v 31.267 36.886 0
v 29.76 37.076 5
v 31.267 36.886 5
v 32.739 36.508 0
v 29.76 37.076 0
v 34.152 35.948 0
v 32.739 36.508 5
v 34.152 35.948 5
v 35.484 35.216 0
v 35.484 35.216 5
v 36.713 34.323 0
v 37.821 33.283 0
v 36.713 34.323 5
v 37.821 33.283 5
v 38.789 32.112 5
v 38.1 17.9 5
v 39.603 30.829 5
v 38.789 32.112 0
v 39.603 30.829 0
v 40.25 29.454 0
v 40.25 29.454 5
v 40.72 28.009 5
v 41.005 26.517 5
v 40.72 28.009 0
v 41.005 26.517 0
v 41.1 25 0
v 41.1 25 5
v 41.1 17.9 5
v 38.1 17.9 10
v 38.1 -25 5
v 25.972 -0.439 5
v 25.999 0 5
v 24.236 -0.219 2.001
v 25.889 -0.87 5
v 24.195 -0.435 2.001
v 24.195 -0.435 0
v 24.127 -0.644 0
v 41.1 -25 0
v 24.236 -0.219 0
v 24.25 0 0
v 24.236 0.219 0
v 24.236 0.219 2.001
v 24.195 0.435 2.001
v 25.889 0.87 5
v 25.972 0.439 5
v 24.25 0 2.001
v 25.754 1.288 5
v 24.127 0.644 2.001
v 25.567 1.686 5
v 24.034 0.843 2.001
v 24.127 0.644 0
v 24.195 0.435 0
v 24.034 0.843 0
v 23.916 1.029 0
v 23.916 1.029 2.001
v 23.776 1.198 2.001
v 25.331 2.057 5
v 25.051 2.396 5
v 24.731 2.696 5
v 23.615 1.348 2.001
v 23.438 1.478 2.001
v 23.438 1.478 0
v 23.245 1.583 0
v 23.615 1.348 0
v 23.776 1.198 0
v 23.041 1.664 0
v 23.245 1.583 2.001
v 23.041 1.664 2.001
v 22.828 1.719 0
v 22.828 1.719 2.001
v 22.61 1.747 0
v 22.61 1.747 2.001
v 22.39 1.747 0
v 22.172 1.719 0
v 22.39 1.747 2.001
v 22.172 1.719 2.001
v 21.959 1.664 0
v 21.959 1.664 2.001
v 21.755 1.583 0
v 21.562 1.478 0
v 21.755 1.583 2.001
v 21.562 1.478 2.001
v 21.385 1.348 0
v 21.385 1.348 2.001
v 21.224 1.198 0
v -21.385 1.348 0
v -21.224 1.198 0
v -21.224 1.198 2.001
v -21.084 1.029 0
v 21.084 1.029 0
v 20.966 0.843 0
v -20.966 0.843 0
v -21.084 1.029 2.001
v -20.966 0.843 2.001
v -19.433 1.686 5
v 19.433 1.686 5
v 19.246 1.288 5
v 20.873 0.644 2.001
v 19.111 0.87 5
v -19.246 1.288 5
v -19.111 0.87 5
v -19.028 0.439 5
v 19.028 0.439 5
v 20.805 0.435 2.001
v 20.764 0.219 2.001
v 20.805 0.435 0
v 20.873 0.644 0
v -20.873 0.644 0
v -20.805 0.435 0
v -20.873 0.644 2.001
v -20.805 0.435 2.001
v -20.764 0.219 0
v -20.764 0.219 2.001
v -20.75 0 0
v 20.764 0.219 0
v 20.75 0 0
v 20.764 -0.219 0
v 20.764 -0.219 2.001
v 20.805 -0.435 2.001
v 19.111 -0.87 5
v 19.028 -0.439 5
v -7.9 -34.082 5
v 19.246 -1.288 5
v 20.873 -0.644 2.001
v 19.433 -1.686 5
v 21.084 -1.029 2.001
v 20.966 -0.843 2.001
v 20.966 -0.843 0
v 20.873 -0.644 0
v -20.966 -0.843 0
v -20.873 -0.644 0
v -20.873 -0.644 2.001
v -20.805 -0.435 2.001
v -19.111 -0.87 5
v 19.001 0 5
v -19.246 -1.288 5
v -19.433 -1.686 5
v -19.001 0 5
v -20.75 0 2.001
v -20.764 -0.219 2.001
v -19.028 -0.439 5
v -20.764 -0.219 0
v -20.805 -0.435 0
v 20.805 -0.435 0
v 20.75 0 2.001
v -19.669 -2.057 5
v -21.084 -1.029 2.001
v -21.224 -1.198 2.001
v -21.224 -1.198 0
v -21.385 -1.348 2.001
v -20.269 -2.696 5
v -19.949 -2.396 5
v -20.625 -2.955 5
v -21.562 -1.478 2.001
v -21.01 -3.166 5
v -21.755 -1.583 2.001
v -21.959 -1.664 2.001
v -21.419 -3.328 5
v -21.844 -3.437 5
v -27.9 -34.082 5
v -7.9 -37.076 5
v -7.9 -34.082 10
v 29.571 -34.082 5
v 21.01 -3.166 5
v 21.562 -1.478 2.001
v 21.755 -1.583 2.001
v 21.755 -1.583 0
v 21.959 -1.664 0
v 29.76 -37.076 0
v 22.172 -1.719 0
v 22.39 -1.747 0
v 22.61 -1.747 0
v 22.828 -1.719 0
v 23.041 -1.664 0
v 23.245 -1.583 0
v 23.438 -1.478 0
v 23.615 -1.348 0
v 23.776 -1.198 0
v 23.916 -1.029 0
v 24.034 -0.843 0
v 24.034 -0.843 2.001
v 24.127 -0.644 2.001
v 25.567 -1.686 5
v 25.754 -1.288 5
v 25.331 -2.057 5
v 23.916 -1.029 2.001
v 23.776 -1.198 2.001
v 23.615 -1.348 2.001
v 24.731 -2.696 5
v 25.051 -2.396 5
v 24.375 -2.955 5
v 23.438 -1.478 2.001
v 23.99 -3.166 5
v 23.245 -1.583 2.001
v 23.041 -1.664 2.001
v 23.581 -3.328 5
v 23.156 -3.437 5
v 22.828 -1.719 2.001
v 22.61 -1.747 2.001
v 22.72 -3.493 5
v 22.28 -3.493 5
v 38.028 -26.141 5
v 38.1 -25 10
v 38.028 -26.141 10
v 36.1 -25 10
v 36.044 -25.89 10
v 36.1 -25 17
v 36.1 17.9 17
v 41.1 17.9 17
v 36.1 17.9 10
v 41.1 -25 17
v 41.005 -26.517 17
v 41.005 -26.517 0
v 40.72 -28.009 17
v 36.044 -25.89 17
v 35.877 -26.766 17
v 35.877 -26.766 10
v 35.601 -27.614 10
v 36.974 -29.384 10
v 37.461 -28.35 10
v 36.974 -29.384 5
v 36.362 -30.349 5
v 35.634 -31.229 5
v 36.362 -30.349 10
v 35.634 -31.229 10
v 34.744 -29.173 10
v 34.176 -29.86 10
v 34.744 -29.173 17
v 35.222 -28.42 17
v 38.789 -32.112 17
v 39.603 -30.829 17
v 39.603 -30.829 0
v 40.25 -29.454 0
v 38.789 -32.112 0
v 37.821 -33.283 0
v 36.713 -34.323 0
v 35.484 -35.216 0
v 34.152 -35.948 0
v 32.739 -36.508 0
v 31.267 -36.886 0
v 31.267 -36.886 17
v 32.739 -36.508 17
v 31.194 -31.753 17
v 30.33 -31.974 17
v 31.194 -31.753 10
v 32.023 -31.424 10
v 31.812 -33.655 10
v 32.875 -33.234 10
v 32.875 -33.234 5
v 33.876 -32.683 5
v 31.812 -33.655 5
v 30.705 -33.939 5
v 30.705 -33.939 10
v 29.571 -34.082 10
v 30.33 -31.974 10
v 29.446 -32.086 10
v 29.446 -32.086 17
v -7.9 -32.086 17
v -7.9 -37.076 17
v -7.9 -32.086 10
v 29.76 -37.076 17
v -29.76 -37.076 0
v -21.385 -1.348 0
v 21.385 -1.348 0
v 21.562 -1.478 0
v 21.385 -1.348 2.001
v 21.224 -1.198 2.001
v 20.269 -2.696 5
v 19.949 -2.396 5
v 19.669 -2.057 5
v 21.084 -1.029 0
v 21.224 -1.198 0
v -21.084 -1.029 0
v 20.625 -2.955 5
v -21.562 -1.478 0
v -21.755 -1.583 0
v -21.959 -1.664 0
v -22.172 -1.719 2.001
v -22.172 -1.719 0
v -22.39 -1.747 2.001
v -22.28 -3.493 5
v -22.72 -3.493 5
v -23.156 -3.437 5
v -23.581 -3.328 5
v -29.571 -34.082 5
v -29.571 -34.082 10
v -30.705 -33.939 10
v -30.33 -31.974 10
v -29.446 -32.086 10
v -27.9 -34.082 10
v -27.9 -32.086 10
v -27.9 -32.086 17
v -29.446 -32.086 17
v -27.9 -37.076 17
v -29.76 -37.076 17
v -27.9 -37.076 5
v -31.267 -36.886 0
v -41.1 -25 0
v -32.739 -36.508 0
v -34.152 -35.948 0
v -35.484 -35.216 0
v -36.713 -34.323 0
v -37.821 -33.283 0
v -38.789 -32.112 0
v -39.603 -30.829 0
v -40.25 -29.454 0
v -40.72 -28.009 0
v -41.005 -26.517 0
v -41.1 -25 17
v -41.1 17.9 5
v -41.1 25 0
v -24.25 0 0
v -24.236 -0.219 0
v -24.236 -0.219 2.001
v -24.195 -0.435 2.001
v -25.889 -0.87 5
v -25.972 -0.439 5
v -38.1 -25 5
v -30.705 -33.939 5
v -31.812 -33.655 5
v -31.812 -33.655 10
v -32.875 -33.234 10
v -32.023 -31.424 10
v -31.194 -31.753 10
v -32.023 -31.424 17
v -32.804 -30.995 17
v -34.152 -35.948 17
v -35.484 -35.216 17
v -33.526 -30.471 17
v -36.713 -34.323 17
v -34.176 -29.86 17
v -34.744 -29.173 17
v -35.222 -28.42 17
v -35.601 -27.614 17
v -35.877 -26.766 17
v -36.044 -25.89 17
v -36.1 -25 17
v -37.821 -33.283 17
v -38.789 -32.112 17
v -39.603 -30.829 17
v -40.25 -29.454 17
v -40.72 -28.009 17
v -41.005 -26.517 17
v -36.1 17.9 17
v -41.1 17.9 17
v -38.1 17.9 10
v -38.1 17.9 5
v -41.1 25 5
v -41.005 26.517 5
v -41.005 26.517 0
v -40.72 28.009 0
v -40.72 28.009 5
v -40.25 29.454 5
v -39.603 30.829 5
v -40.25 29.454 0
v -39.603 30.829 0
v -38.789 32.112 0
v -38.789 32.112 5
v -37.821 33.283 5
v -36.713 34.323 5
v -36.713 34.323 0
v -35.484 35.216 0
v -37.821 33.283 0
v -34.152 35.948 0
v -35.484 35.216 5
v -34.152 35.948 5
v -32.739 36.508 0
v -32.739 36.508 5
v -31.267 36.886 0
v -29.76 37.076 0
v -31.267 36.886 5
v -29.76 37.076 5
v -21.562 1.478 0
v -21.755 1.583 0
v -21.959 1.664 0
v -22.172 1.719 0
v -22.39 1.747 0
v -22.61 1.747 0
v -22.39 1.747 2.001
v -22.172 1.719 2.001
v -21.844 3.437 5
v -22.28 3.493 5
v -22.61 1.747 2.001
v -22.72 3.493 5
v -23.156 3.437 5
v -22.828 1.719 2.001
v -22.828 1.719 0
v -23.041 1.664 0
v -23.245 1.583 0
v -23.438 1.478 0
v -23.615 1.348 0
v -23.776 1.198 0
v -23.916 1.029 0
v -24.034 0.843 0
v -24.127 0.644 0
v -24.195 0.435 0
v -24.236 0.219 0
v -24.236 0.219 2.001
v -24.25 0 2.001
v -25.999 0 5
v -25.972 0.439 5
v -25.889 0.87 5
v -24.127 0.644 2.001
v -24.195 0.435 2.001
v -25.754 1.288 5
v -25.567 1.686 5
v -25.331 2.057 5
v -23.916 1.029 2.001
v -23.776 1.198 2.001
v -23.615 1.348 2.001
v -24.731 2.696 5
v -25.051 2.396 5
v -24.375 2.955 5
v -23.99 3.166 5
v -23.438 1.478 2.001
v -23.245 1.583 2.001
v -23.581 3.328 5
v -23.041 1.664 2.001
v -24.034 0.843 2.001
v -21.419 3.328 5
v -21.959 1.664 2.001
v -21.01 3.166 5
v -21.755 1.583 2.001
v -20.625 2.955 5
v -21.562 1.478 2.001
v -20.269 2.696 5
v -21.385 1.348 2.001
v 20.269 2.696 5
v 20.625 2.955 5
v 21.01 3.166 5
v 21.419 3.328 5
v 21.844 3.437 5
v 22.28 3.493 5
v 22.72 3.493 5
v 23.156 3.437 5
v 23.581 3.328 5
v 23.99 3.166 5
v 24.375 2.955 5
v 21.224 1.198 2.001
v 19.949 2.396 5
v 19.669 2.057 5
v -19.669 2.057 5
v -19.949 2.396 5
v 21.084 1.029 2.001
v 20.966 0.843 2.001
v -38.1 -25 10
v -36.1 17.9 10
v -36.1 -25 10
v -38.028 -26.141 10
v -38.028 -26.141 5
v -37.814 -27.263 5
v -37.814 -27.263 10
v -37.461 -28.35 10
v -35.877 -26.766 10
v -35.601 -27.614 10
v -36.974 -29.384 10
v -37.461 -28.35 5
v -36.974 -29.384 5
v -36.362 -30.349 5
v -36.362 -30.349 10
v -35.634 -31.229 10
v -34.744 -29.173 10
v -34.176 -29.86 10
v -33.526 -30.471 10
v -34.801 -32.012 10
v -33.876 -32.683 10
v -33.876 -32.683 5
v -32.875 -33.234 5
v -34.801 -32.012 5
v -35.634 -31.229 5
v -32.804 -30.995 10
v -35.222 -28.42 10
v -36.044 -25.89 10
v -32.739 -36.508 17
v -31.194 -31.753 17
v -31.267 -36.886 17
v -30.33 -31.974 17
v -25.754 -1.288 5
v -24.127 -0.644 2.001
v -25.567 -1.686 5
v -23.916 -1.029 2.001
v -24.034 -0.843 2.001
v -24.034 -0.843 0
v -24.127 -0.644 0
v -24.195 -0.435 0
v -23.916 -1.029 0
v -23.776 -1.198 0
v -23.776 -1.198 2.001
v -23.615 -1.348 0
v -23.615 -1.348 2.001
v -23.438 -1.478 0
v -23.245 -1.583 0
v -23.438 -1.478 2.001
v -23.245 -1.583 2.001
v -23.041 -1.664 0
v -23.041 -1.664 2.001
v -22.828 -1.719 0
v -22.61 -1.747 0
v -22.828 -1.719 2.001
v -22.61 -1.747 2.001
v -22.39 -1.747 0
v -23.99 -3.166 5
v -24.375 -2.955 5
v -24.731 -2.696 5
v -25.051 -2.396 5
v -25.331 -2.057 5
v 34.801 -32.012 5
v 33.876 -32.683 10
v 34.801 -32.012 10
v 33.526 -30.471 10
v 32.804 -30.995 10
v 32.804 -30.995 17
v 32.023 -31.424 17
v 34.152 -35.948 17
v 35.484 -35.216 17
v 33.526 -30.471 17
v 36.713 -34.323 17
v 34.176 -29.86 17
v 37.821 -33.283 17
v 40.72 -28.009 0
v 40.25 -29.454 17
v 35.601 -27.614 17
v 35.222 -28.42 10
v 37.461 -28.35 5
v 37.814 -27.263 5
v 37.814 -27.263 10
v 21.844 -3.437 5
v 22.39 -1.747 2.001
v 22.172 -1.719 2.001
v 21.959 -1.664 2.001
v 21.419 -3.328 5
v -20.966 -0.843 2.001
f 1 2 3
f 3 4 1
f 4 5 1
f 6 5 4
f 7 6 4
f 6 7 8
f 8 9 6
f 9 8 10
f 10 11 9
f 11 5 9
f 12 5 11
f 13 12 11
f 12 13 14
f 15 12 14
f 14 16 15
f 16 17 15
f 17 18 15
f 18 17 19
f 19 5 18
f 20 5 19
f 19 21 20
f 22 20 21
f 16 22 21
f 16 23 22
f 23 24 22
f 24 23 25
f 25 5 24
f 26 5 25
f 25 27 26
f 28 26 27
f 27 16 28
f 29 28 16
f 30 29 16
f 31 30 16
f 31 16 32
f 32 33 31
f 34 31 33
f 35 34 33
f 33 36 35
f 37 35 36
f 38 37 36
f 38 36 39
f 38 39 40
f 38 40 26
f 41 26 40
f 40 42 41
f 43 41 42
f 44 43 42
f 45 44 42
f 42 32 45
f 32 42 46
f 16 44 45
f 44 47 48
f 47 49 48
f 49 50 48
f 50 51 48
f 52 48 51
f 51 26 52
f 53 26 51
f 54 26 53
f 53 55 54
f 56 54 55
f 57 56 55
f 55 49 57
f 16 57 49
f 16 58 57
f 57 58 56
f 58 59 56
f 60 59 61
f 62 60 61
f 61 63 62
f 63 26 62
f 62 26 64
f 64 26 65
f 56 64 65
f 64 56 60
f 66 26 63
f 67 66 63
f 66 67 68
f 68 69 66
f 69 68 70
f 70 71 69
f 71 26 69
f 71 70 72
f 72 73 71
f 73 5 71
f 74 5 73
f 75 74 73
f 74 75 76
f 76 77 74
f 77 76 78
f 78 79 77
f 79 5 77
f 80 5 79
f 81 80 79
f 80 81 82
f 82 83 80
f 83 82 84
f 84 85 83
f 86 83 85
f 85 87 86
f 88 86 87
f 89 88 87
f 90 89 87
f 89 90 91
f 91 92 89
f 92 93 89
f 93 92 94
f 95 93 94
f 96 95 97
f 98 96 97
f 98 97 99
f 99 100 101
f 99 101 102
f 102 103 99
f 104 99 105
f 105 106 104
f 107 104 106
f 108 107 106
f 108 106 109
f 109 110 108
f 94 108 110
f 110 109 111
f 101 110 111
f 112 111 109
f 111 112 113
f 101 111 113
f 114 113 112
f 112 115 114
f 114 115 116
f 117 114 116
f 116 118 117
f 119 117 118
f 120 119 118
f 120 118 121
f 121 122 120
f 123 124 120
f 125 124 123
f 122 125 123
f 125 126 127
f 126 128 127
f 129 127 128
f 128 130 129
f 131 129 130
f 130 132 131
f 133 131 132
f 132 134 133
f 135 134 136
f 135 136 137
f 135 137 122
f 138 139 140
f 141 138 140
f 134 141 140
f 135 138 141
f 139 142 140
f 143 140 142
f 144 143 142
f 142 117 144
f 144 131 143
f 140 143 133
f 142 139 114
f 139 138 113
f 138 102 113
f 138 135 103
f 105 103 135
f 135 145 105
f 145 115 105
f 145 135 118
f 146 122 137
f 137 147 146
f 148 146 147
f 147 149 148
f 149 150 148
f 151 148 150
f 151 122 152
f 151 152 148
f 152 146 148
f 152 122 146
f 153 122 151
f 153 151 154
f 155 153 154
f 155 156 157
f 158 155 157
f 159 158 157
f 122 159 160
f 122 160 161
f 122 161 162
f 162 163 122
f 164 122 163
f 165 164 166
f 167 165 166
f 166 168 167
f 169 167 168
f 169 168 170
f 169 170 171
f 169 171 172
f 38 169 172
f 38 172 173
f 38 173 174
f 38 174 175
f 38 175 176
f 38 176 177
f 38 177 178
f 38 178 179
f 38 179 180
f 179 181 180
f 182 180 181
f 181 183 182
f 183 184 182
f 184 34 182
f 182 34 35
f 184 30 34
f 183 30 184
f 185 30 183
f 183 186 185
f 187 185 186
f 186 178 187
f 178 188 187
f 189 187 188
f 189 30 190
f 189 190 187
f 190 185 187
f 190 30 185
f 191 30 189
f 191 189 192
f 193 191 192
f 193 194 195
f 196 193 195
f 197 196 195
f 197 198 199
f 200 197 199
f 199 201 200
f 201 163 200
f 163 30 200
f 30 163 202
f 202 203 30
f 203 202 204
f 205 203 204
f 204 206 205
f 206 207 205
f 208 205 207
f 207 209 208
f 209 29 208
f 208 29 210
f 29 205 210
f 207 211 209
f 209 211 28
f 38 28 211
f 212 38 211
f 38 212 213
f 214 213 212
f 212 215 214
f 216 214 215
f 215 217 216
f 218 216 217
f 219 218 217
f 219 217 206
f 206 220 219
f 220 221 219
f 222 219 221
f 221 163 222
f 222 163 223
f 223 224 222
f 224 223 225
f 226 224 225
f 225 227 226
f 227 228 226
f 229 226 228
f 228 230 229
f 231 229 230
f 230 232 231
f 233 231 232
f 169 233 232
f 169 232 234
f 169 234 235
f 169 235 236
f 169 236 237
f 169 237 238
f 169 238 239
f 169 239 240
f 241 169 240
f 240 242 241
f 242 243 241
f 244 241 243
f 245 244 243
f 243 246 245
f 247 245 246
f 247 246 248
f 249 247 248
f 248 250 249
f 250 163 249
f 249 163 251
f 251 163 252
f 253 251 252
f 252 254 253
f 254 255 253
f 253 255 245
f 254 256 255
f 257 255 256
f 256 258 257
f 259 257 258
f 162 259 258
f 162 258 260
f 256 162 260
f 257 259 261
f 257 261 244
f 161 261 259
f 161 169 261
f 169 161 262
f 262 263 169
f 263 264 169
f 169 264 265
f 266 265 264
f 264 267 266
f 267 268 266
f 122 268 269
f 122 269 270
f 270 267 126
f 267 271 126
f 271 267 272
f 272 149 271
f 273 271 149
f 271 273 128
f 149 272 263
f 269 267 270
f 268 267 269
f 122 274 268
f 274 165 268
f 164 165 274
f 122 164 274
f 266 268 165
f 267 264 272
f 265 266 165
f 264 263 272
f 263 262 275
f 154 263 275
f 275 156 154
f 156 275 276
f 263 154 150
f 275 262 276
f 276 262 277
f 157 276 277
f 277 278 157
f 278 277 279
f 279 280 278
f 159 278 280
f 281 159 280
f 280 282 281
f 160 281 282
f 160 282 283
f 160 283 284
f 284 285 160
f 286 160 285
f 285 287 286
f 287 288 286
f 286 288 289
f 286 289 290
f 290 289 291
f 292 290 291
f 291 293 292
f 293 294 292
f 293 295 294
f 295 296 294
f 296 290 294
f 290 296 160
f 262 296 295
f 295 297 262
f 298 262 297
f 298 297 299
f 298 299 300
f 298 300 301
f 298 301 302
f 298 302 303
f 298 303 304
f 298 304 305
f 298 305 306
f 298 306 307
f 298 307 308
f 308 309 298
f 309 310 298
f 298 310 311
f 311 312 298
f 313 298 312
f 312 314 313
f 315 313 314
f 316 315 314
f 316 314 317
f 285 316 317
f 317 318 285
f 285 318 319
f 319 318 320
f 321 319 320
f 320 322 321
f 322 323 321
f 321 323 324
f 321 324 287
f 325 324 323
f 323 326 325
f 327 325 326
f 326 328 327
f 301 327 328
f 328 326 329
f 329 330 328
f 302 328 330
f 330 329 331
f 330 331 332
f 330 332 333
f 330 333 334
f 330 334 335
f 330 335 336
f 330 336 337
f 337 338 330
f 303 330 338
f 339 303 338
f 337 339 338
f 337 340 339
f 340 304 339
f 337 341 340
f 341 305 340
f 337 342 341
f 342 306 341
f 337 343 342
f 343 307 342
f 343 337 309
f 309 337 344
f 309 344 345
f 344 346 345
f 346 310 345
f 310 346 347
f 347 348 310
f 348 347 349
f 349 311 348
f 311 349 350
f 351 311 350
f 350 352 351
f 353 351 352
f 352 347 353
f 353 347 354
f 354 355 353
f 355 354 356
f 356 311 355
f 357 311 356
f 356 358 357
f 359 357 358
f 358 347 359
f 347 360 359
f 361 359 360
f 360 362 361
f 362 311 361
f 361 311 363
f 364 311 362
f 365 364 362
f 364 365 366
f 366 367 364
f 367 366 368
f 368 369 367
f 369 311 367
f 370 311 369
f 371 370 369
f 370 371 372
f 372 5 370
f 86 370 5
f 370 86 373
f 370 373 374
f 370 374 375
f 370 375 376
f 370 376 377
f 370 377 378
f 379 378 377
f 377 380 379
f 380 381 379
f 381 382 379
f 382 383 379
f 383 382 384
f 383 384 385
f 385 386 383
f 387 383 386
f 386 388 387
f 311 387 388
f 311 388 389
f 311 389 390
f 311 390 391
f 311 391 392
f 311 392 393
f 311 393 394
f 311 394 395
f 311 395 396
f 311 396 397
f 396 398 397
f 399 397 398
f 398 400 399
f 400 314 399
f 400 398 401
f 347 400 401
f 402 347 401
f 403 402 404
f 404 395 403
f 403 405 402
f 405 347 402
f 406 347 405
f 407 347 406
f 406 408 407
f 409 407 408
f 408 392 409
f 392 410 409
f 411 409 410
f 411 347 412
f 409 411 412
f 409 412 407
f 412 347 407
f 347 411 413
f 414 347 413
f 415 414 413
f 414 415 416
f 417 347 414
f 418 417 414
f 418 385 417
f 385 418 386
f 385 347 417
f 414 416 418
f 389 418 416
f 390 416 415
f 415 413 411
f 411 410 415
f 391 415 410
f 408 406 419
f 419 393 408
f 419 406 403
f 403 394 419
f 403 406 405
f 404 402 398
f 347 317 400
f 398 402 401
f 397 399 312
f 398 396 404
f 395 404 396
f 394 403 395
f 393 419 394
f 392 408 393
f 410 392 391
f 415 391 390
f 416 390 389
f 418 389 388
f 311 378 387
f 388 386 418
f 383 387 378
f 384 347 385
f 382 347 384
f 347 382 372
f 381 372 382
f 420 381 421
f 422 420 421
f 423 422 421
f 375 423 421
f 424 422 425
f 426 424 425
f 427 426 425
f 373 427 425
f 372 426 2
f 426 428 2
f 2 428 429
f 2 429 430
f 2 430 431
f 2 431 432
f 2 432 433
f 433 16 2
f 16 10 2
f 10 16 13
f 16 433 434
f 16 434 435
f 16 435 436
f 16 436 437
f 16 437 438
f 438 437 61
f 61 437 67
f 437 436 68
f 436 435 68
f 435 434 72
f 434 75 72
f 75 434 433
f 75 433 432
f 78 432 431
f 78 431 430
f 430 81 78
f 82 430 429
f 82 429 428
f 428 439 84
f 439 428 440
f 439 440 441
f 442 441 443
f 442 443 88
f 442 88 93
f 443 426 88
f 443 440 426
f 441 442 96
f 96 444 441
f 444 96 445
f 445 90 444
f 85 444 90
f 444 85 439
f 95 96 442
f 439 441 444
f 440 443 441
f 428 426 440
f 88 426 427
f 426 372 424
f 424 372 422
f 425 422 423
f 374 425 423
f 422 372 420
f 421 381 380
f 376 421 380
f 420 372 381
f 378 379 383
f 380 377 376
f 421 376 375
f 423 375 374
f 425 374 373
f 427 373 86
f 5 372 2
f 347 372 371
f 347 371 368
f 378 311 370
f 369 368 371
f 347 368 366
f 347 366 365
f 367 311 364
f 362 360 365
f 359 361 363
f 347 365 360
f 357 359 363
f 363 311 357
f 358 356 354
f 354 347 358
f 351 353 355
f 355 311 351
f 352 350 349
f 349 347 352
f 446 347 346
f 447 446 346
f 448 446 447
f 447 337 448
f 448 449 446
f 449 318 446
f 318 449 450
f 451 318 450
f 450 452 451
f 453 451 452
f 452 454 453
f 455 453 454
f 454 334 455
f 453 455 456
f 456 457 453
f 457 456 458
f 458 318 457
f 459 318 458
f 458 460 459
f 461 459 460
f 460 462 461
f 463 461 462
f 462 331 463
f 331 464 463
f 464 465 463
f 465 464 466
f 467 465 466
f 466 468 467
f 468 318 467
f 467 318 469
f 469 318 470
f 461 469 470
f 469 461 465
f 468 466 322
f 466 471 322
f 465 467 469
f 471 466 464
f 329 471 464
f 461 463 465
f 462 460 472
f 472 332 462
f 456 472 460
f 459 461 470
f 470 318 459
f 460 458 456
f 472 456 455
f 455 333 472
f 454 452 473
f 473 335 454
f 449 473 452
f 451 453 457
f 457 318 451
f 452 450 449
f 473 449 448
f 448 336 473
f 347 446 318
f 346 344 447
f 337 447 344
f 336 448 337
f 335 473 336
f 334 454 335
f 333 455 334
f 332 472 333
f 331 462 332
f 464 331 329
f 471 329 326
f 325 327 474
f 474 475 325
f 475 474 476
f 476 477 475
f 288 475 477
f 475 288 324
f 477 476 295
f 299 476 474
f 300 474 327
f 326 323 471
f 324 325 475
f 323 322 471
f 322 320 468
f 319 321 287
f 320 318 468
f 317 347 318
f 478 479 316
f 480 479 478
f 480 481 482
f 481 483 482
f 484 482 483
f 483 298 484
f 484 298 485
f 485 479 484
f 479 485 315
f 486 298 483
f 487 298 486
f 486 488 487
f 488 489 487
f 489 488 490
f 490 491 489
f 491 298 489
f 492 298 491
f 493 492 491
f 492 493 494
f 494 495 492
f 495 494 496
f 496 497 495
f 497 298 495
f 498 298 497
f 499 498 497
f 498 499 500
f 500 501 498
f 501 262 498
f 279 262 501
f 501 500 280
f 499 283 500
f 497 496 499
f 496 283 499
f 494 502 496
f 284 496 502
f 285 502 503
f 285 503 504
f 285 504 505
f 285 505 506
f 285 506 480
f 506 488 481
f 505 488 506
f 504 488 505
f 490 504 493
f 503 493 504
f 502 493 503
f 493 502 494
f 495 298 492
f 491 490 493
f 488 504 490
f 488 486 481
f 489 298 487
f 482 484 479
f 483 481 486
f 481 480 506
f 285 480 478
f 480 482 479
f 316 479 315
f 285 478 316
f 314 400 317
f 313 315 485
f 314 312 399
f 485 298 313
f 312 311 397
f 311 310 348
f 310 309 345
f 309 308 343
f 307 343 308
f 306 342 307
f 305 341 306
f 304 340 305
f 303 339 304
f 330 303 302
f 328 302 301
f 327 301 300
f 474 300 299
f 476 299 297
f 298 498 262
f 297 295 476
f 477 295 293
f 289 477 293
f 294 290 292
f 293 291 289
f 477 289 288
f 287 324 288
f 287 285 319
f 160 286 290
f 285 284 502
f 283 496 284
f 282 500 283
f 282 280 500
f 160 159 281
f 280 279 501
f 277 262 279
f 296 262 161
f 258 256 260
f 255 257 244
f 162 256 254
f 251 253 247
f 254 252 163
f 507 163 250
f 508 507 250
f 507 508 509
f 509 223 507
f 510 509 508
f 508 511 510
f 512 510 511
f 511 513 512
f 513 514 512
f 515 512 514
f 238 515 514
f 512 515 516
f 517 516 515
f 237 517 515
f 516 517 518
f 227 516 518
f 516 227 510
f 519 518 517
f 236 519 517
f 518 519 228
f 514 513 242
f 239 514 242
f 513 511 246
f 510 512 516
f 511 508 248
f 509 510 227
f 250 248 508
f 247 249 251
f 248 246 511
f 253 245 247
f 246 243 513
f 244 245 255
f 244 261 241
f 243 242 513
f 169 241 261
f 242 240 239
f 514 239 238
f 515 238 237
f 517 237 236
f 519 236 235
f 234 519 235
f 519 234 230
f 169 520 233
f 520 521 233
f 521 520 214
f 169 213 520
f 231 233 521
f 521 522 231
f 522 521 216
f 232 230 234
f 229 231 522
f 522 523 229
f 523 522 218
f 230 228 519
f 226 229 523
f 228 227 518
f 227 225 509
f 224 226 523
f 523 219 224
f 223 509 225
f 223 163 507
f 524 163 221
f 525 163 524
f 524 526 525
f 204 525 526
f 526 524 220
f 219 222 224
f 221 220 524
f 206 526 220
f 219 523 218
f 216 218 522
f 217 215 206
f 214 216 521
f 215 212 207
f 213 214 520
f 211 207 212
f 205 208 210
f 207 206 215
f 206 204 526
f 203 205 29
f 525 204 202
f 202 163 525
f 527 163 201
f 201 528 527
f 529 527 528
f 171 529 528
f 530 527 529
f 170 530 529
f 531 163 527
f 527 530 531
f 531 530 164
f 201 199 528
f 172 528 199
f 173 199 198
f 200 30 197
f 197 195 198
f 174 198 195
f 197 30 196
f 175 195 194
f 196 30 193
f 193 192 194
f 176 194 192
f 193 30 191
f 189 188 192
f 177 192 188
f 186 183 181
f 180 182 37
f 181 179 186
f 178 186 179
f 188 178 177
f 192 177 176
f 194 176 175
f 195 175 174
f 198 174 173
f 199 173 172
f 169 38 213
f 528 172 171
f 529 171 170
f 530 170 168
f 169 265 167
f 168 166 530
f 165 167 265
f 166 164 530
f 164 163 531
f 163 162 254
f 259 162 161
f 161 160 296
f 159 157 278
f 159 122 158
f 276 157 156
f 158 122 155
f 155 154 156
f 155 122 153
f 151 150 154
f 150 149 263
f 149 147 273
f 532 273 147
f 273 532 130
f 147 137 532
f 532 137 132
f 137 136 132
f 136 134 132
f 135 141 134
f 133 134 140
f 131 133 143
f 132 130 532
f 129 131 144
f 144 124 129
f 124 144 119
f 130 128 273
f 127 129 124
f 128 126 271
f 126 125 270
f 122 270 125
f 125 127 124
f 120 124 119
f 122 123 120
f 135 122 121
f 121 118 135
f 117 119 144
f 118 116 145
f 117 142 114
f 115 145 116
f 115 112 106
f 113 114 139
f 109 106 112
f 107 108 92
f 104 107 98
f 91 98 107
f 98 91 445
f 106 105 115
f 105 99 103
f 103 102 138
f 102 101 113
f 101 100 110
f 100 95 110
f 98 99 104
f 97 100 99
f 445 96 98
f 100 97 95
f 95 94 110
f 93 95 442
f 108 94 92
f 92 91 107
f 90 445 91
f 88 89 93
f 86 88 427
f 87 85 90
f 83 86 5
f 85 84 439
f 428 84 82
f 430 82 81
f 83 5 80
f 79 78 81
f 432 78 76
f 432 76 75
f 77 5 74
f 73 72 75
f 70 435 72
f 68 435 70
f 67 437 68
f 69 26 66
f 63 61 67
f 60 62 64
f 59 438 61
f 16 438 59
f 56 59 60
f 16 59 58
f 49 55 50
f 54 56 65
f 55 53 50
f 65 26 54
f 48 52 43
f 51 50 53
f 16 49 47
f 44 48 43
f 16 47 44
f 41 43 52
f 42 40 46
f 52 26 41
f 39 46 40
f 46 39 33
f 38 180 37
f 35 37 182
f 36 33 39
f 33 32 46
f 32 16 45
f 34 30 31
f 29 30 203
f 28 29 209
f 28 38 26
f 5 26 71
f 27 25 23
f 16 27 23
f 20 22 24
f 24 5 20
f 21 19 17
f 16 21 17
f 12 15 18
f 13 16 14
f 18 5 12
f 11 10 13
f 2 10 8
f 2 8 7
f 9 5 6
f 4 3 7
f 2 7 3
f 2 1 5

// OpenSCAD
eps = 0.001;

case_width = 72.2;
case_depth = 64.2;
case_radius = 7.1;

bottom_height = 5;

border_height = 12;
border_thickness = 5;


difference() {
    translate([case_radius - case_width / 2,
               case_radius - case_depth / 2,
               0]) {
        difference() {
            Case(case_width + 2 * border_thickness,
                 case_depth + 2 * border_thickness,
                 border_height + bottom_height,
                 case_radius + border_thickness);
            
            // Innere ausschneiden
            translate([0, 0, bottom_height]) {
                Case(case_width,
                     case_depth,
                     border_height + eps,
                     case_radius);
            }
            
            // Führungsschine
            translate([0, 0, bottom_height]) {
                Case(case_width + 2 * 2,
                     case_depth + 2 * 2,
                     5,
                     case_radius + 2);
            }
            
            // Ausschnitt Netzwerkkabel
            translate([1.1, -case_radius - border_thickness - eps, bottom_height]) {
                cube([20, 2*border_thickness, border_height + eps]);
            }
            
            // oberen Rand abschneiden
            translate([0, 0, bottom_height]) {
                translate([-border_thickness - case_radius - eps,
                           case_depth - (2 + 1) *case_radius, 0]) {
                    cube([case_width + 2 * border_thickness + 2 * eps,
                          case_depth,
                          border_height + eps]);
                }
            }
        }
    }
    
    // Schraubenlöcher
    for(a = [-22.5, 22.5]) {
        translate([a, 0, -eps]) {
            cylinder(d=3.5, h=bottom_height + 2*eps, $fn=50);
        }
        
        translate([a, 0, bottom_height + eps]) {
            rotate([180,0,0]) {
                cylinder(d1=7, d2=3.5, h=3, $fn=50);
            }
        }
    }
}

module Case(width, depth, height, radius) {
    cube_width  = width - 2 * radius;
    cube_depth  = depth - 2 * radius;
    cube_height = height - 1;
    
    difference() {
        minkowski() {
            cube([cube_width, cube_depth, cube_height]);
            cylinder(r=radius, h=1, $fn=50);
        }
    }    
}
